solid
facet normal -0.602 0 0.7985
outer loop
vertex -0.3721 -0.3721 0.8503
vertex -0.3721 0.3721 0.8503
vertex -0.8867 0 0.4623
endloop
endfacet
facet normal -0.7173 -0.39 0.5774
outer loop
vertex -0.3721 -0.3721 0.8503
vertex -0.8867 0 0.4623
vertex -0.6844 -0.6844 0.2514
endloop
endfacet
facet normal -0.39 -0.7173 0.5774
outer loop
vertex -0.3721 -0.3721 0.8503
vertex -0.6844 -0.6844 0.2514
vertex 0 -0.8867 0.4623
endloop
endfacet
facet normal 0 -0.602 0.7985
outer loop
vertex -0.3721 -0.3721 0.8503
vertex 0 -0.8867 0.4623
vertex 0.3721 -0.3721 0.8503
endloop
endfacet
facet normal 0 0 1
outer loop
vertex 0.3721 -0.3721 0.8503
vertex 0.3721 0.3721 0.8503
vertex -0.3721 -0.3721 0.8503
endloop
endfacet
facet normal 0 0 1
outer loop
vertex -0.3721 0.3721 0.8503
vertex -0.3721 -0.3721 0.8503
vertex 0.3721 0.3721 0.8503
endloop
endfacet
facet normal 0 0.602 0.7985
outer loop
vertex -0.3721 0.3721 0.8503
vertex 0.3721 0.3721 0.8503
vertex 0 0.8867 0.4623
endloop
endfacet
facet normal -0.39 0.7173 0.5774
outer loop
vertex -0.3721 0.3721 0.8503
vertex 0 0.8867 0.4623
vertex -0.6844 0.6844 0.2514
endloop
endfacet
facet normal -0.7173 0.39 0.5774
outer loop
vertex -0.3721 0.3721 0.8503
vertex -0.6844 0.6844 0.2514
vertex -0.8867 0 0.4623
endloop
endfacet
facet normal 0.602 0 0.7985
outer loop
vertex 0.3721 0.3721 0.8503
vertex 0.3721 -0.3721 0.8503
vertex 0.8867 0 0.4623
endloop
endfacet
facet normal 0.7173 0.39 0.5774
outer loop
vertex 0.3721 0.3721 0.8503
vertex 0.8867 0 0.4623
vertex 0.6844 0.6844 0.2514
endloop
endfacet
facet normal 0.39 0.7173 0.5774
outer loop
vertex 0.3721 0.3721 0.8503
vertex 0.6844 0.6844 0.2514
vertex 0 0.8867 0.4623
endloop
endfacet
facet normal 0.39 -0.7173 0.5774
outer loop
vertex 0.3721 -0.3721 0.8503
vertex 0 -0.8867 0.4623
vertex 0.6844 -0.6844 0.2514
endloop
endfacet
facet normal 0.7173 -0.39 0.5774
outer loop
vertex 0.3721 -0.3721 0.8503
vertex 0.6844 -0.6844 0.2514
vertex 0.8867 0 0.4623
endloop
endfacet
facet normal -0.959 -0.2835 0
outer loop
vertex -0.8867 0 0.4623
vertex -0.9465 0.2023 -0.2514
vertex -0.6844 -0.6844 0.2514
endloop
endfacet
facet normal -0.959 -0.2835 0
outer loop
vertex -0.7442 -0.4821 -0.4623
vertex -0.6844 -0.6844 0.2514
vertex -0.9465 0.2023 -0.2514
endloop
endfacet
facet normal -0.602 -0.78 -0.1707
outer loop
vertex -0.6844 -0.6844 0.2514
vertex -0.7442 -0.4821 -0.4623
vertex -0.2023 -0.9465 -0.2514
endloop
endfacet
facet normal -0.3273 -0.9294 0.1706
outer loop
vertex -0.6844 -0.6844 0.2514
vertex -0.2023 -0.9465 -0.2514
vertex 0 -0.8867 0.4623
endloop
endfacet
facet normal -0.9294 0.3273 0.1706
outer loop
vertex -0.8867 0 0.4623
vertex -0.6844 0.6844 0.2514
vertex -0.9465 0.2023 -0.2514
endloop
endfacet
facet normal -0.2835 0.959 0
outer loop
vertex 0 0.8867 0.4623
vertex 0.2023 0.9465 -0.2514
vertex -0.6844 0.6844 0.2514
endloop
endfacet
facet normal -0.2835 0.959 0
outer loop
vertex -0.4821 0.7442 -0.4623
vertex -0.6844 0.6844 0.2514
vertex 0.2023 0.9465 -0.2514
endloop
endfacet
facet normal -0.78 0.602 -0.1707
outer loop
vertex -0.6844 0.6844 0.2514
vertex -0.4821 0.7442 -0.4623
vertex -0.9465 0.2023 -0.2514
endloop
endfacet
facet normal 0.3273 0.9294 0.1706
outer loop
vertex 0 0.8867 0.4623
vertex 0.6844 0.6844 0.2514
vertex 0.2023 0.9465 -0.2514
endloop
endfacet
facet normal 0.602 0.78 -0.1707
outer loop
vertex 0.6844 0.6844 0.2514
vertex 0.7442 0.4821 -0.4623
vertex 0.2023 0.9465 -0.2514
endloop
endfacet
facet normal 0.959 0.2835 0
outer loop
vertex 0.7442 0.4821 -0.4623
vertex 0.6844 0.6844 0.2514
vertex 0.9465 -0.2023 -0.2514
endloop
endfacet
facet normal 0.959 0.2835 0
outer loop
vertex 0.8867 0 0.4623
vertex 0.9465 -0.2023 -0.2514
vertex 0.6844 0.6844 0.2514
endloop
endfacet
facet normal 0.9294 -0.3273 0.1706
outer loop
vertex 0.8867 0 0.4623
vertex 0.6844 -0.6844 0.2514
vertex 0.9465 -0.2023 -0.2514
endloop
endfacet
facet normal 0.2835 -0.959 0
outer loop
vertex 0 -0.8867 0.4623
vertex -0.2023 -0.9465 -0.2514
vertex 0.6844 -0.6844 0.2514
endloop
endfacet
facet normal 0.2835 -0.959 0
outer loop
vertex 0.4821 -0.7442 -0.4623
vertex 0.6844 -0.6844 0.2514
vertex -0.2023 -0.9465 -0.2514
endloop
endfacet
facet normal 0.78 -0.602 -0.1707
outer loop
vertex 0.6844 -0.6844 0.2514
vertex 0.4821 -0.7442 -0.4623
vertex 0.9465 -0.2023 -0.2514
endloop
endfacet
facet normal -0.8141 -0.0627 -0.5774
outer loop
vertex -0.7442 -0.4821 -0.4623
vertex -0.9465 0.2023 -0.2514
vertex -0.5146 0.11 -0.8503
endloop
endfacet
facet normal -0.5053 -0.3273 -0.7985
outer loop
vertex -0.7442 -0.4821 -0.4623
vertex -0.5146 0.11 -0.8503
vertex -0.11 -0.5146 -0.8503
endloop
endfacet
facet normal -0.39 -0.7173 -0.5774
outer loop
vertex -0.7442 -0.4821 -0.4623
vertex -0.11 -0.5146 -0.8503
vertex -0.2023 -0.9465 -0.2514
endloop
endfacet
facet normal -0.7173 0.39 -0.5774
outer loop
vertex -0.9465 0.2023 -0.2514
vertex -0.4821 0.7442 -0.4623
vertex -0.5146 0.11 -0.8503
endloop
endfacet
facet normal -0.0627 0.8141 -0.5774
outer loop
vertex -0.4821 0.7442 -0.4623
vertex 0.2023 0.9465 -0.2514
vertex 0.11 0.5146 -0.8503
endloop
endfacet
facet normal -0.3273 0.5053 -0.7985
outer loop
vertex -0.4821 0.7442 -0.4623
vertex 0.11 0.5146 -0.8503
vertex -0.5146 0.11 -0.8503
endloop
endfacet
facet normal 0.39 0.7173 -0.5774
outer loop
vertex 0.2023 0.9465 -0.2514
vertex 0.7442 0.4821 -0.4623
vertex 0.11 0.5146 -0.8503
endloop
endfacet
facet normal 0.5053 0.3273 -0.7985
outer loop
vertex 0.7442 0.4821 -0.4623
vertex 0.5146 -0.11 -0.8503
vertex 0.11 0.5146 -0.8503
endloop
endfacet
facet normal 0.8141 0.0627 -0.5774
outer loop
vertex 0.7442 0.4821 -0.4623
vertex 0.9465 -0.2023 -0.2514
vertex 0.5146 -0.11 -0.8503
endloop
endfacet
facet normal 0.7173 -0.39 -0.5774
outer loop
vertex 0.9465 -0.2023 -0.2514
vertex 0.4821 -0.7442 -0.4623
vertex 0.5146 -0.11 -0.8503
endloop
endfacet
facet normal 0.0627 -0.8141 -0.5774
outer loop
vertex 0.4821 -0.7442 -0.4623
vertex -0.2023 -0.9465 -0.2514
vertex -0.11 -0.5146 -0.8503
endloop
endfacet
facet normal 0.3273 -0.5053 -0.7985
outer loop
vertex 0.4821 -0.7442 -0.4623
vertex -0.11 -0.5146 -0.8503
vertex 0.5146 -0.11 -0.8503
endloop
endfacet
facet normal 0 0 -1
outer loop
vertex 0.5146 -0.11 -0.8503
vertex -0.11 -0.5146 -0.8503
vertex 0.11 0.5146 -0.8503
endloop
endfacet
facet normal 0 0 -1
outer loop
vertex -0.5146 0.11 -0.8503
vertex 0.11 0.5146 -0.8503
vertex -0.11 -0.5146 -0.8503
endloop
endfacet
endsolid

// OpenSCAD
polyhedron( points = [[-0.372102752826372, -0.372102828953981, 0.850339431871139], [-0.37210275279296, 0.372102838723753, 0.850339431871139], [0.372102914817955, 0.372102838656931, 0.850339431871139], [0.37210291478454, -0.372102828953981, 0.850339431871139], [-0.684403746724573, -0.684403822686593, 0.251358418528921], [-0.88671194762879, 4.94657263939269e-09, 0.462320188161404], [-0.684403746580147, 0.684403832567382, 0.25135841852892], [8.10972860212409e-08, 0.88671203346326, 0.462320188196246], [0.684403908768109, 0.684403832482051, 0.251358418665871], [0.886712109574161, 4.78979010158407e-09, 0.462320188196246], [0.684403908623681, -0.684403822890118, 0.251358418665871], [8.09405027811332e-08, -0.886712023726896, 0.462320188196246], [-0.74420552820144, -0.482095604393726, -0.462320225910431], [-0.946513729097525, 0.202308223211931, -0.251358456231789], [-0.482095586646038, 0.744205811718568, -0.462320225821231], [0.202308241016596, 0.94651401261007, -0.251358456091737], [0.744205500639123, 0.482095529117254, -0.462320320293072], [0.946513684097905, -0.202308239889552, -0.251358517437495], [0.482095863264636, -0.744206144392358, -0.462320182970836], [-0.202308227369035, -0.946514061177261, -0.251358409243238], [-0.514608718525521, 0.109992748807067, -0.850339249489039], [0.109992685850303, 0.514610051159413, -0.850339993358623], [0.514607479088457, -0.10999293931358, -0.850338648271416], [-0.109992636170853, -0.514609445875994, -0.85033946950537]], faces = [[0, 1, 5], [0, 5, 4], [0, 4, 11], [0, 11, 3], [0, 3, 2, 1], [1, 2, 7], [1, 7, 6], [1, 6, 5], [2, 3, 9], [2, 9, 8], [2, 8, 7], [3, 11, 10], [3, 10, 9], [4, 5, 13, 12], [4, 12, 19], [4, 19, 11], [5, 6, 13], [6, 7, 15, 14], [6, 14, 13], [7, 8, 15], [8, 16, 15], [8, 9, 17, 16], [9, 10, 17], [10, 11, 19, 18], [10, 18, 17], [12, 13, 20], [12, 20, 23], [12, 23, 19], [13, 14, 20], [14, 15, 21], [14, 21, 20], [15, 16, 21], [16, 22, 21], [16, 17, 22], [17, 18, 22], [18, 19, 23], [18, 23, 22], [20, 21, 22, 23]]);
